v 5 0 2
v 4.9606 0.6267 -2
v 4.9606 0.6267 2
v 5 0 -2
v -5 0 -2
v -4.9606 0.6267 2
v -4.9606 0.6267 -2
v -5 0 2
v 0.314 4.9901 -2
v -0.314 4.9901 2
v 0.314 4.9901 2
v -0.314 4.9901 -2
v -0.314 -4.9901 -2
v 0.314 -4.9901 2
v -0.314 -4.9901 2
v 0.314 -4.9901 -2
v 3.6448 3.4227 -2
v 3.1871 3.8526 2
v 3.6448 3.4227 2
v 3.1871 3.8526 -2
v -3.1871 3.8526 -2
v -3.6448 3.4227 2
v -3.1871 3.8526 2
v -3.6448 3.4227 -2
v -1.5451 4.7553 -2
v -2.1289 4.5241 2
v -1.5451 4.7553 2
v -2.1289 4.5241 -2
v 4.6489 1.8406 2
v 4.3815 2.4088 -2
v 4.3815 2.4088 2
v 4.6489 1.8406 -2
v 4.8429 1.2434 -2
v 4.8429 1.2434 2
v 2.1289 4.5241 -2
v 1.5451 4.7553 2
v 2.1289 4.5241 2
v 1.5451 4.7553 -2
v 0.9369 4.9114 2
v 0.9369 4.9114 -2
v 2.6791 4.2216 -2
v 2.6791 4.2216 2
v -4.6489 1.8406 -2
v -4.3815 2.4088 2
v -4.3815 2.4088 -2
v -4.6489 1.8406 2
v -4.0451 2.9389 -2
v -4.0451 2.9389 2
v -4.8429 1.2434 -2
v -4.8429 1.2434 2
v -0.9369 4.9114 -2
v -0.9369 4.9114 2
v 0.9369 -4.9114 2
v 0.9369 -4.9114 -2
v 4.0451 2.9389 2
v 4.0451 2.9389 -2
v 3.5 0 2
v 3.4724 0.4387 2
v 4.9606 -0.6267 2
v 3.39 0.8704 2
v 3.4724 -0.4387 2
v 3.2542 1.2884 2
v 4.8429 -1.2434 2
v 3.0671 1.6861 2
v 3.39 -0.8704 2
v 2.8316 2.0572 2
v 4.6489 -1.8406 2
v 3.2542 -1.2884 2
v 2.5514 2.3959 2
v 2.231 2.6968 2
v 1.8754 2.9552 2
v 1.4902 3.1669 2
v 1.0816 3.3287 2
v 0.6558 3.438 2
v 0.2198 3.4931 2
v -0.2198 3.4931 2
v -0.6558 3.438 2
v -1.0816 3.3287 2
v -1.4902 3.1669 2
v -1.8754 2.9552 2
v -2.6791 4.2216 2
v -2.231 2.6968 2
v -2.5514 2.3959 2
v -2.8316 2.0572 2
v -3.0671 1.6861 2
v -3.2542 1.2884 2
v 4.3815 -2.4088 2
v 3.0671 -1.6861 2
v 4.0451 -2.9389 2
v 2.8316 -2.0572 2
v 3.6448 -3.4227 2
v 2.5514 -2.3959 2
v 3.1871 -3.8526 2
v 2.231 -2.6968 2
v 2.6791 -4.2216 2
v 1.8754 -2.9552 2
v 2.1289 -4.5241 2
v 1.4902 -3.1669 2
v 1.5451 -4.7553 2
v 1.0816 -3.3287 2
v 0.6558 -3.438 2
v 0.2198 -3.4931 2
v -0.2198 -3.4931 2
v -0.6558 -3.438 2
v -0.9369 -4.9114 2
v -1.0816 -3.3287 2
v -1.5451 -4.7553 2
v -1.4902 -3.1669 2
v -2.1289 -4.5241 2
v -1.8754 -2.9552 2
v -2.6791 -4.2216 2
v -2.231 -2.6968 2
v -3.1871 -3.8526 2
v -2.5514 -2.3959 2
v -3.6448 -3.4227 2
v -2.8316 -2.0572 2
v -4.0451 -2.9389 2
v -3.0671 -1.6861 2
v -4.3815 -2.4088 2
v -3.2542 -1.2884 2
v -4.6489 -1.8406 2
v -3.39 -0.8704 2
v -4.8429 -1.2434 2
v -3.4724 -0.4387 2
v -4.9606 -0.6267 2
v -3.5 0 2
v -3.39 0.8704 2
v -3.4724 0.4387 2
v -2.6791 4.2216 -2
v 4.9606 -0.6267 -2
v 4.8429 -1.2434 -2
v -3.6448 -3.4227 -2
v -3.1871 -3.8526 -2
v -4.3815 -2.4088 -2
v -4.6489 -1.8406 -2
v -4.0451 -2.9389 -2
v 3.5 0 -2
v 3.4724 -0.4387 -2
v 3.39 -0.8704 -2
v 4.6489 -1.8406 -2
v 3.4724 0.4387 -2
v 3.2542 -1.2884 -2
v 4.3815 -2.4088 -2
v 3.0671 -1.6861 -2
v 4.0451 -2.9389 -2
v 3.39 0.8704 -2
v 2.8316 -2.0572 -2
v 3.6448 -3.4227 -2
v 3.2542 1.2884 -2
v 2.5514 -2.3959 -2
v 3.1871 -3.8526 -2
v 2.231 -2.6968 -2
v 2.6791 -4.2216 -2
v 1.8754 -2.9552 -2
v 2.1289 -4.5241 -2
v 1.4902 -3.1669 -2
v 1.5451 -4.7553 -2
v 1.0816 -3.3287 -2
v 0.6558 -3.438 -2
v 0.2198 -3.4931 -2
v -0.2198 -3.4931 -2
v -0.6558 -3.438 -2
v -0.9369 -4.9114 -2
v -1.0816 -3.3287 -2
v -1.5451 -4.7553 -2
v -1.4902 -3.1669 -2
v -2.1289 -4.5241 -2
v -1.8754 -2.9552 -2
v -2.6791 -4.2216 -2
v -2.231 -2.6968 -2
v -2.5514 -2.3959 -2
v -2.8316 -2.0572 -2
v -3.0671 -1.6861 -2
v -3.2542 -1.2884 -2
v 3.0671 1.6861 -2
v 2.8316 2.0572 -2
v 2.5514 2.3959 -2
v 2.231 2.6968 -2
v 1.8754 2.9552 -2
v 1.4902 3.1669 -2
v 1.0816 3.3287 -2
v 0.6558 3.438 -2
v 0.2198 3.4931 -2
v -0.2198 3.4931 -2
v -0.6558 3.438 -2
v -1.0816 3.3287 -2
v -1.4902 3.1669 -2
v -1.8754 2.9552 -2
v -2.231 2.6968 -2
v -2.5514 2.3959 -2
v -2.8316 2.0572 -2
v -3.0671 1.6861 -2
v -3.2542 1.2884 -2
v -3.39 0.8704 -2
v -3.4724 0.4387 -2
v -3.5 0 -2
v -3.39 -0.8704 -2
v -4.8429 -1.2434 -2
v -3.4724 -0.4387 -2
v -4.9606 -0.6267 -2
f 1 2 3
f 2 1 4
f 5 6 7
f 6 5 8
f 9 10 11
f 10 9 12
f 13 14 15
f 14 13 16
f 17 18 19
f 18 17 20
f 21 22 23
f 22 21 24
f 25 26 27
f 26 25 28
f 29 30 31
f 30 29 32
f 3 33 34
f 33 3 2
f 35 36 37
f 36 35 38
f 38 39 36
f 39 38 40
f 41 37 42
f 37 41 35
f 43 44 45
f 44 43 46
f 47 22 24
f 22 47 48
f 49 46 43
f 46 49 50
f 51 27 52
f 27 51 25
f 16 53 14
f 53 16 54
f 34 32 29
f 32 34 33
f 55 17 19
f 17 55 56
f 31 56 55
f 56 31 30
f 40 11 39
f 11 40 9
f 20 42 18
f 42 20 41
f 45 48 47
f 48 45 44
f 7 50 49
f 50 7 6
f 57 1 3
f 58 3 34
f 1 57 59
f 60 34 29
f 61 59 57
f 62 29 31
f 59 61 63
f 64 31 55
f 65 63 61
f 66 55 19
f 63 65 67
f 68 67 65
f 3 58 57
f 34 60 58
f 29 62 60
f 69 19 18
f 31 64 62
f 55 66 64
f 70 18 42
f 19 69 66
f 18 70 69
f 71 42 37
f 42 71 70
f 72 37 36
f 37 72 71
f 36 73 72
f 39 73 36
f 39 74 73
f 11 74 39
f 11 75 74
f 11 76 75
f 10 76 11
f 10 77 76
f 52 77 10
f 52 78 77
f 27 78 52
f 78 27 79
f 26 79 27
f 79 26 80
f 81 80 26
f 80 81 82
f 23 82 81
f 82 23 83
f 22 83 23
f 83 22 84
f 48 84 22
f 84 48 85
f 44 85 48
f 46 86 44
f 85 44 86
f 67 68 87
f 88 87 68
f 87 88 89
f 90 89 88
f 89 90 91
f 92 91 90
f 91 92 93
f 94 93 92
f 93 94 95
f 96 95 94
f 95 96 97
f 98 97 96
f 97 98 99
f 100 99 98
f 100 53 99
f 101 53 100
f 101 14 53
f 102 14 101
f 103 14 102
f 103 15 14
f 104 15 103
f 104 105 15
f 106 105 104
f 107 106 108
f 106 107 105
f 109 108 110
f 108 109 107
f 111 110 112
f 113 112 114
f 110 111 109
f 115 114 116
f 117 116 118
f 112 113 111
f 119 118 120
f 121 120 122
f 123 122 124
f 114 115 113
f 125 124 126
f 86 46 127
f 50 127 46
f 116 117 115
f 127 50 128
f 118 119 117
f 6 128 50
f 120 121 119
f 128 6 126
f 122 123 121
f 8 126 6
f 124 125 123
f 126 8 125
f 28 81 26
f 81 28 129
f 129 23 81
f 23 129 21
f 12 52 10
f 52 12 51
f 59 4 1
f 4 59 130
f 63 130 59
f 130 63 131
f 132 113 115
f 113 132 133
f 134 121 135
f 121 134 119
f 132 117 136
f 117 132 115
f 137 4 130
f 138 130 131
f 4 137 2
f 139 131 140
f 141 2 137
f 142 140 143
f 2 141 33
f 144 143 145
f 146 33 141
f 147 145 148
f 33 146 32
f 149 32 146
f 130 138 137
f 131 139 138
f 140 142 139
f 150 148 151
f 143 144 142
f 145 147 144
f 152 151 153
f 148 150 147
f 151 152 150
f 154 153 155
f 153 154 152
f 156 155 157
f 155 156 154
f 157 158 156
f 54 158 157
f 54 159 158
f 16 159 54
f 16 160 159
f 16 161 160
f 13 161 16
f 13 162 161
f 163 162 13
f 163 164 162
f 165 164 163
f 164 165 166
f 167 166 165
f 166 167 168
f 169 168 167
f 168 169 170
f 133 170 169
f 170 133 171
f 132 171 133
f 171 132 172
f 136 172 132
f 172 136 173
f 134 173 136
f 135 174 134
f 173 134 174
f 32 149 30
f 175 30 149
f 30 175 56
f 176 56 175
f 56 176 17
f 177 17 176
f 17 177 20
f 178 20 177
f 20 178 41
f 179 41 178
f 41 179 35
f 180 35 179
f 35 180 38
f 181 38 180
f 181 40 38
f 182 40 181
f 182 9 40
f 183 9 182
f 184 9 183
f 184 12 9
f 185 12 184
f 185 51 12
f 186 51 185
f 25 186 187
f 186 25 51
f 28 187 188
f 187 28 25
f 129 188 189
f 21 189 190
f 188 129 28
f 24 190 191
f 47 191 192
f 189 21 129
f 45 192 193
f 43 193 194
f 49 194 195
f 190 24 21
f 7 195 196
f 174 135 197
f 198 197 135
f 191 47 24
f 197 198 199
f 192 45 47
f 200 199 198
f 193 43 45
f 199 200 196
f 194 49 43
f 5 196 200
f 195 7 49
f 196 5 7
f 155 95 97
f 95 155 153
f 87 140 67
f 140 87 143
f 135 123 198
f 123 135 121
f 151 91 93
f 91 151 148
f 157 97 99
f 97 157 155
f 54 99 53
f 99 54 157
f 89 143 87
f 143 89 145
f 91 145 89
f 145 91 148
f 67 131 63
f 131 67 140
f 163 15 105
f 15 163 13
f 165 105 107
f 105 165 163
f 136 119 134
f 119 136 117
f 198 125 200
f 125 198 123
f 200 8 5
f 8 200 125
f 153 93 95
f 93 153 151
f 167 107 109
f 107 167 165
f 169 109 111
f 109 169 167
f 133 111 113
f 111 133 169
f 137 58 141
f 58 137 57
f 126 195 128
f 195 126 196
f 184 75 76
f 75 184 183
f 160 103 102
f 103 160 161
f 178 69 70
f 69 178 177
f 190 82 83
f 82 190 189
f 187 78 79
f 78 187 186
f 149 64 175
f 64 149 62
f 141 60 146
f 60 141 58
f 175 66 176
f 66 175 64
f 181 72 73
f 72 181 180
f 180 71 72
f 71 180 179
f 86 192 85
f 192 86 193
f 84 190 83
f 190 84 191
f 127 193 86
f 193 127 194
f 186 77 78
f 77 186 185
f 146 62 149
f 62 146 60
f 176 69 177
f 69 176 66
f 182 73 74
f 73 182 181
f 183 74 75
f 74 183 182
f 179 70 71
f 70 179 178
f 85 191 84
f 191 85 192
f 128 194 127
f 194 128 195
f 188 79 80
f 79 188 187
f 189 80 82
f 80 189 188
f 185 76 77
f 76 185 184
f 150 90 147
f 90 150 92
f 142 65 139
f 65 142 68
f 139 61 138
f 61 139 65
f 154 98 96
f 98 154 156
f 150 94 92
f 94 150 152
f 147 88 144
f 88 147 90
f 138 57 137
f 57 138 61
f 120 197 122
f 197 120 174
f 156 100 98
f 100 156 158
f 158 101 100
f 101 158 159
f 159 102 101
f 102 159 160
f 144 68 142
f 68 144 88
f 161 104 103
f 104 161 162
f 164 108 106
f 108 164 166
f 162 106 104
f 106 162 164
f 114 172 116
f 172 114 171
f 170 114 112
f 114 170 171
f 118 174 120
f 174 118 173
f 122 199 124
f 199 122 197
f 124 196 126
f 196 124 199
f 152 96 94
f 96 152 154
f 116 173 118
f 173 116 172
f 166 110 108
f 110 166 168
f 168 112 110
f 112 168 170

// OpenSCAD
$fn = 50;


difference() {
	union() {
		translate(v = [0, 0, -2.0000000000]) {
			cylinder(h = 4, r = 5.0000000000);
		}
	}
	union() {
		translate(v = [0, 0, -100.0000000000]) {
			cylinder(h = 200, r = 3.5000000000);
		}
	}
}
